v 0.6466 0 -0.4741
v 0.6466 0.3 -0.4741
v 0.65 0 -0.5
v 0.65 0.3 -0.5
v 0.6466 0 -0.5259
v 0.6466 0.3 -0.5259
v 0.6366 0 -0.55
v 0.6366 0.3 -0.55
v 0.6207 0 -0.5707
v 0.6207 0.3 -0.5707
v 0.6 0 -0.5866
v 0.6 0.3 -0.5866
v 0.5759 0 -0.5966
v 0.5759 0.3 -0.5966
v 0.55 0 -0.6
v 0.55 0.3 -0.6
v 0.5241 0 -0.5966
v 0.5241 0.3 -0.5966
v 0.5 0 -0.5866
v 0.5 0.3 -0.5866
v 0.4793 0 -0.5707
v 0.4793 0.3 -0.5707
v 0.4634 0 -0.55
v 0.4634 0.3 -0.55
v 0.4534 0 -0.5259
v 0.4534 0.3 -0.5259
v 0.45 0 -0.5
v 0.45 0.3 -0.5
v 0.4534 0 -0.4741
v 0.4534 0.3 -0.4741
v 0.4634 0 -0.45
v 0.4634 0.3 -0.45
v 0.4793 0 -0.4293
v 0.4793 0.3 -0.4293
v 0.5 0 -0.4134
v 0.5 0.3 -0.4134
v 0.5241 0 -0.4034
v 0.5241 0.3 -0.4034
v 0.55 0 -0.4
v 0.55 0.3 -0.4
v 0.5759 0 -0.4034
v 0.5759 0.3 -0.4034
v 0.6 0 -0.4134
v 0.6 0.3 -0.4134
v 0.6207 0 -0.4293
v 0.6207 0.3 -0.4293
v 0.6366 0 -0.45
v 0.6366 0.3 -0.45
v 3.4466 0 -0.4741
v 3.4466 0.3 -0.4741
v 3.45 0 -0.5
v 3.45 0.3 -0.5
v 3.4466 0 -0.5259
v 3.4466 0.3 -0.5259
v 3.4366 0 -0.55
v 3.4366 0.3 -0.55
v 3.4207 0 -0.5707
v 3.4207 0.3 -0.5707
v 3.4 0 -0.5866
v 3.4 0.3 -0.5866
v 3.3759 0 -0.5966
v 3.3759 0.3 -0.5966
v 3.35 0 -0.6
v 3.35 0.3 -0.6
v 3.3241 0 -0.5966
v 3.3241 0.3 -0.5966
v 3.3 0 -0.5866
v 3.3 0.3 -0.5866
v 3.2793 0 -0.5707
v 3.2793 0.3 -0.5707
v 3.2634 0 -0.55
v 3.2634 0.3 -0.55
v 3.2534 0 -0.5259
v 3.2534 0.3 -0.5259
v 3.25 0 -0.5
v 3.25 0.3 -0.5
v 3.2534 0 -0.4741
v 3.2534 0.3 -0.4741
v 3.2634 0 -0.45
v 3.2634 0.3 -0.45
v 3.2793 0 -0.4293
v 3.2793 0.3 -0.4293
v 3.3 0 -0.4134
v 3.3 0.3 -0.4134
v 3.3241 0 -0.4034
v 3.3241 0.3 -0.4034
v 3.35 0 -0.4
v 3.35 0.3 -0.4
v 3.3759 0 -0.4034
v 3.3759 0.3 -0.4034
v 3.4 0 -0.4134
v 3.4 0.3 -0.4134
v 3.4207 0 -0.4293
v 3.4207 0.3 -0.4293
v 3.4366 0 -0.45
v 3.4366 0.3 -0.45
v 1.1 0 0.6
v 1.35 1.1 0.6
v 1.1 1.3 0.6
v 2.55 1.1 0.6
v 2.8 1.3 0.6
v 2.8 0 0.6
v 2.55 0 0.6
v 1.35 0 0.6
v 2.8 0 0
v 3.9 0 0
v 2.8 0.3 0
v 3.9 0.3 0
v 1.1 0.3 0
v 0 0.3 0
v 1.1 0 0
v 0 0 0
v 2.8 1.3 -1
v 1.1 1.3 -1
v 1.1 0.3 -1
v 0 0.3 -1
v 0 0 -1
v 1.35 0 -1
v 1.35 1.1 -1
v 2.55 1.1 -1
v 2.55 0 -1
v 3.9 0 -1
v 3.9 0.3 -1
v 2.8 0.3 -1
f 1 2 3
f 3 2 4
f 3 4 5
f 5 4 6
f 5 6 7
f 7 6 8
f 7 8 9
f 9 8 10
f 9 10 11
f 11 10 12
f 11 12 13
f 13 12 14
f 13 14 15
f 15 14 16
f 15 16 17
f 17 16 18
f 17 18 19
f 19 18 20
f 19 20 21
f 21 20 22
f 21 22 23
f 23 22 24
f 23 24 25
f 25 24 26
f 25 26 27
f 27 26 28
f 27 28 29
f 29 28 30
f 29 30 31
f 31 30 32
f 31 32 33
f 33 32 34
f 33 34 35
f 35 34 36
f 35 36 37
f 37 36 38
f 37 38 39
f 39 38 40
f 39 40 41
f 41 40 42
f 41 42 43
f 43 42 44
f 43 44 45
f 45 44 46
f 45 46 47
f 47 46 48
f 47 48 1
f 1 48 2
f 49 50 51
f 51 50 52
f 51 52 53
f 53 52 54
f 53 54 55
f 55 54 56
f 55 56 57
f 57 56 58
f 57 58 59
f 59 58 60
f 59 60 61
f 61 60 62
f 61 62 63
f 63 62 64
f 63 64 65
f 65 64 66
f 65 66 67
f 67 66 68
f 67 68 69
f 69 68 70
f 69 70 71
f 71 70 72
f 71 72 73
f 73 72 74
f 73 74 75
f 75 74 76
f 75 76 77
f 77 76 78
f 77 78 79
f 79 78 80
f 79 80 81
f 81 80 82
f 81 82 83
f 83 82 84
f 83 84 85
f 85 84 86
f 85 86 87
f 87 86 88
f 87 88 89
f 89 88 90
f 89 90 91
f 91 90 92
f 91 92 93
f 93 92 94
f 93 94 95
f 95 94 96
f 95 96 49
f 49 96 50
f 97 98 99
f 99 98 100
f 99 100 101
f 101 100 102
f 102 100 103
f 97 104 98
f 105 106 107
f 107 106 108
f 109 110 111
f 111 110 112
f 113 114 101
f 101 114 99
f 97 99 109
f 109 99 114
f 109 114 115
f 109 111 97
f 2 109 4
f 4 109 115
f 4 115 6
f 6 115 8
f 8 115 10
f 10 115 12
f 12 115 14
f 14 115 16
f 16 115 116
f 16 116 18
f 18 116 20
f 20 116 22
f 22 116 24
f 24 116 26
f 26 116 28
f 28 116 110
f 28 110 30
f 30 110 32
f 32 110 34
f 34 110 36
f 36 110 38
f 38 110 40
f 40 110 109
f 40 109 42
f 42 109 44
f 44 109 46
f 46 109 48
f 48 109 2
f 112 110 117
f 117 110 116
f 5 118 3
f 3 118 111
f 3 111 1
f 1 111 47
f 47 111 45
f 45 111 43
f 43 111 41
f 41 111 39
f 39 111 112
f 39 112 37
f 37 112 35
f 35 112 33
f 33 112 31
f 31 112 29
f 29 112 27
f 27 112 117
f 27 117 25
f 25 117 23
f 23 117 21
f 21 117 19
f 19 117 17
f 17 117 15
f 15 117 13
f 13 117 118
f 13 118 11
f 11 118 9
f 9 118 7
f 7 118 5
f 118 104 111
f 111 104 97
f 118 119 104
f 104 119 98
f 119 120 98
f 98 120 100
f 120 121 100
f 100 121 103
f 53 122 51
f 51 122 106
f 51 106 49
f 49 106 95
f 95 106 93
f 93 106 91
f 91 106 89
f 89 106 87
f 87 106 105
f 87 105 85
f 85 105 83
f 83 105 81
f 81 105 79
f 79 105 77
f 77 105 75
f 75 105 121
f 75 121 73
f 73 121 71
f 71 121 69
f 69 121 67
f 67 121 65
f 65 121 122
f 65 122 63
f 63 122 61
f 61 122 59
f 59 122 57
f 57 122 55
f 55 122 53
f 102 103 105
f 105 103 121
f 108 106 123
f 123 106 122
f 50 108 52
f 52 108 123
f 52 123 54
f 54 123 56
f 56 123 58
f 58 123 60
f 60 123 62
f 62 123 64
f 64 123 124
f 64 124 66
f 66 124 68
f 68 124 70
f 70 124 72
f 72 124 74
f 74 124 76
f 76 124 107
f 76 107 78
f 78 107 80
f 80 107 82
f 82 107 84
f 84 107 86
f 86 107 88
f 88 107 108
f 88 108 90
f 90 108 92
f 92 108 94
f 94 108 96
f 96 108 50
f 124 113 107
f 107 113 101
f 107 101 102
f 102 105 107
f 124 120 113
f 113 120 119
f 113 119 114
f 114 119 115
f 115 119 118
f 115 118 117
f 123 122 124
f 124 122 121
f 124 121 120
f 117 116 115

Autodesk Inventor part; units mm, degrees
ref_plane "YZ Plane" through (0, 0, 0) normal (1, 0, 0) x (0, 1, 0)
ref_plane "XZ Plane" through (0, 0, 0) normal (0, 1, 0) x (-1, 0, 0)
ref_plane "XY Plane" through (0, 0, 0) normal (0, 0, 1) x (1, 0, 0)
sketch "Boceto1" plane through (0, 0, 0) normal (0, 0, 1) x (1, 0, 0)
  line L0 (2.8, 1.3) -> (2.8, 0.3)
  line L1 (2.6, 0) -> (3.9, 0)
  line L2 (3.9, 0) -> (3.9, 0.3)
  line L3 (3.9, 0.3) -> (2.8, 0.3)
  line L4 (0, 0) -> (0, 0.3)
  line L5 (0, 0.3) -> (1.1, 0.3)
  line L6 (0, 0) -> (1.3, 0)
  line L7 (1.1, 1.3) -> (1.1, 0.3)
  line L8 (1.1, 1.3) -> (2.8, 1.3)
  line L9 (1.35, 1.1) -> (2.55, 1.1)
  line L10 (1.3, 0) -> (1.35, 0)
  line L11 (2.6, 0) -> (2.55, 0)
  line L12 (2.55, 0) -> (2.55, 1.1)
  line L13 (1.35, 0) -> (1.35, 1.1)
  dimension "d0" = 1
  dimension "d10" = 0.05
  dimension "d11" = 0.05
extrude "Extrusión1" add sketch "Boceto1" against normal blind 1
sketch "Boceto2" plane through (0, 0, 0) normal (0, 0, 1) x (1, 0, 0)
  line L0 (1.1, 0.3) -> (1.1, 1.3)
  line L1 (1.1, 1.3) -> (2.8, 1.3) projected
  line L2 (1.1, 1.3) -> (2.8, 1.3)
  line L3 (2.8, 1.3) -> (2.8, 0.3) projected
  line L4 (2.8, 1.3) -> (2.8, 0.3)
  line L5 (2.55, 0) -> (2.55, 1.1) projected
  line L6 (1.35, 1.1) -> (2.55, 1.1)
  line L7 (2.55, 1.1) -> (2.55, 0)
  line L8 (2.55, 0) -> (2.8, 0)
  line L9 (1.35, 1.1) -> (1.35, 0)
  line L10 (1.35, 0) -> (1.1, 0)
  line L11 (1.1, 0.3) -> (1.1, 1.3) projected
  line L12 (1.1, 0.3) -> (1.1, 0)
  line L13 (2.8, 0.3) -> (2.8, 0)
extrude "Extrusión2" add sketch "Boceto2" along normal blind 0.6
sketch "Boceto3" plane through (2.8, 0.3, 0) normal (0, 1, 0) x (1, 0, 0)
  line L0 (-1.7, 0) -> (-1.7, 1.9)
  line L1 (-1.7, 1.9) -> (0, 1.9)
  line L2 (0, 1.9) -> (0, 0)
  line L3 (0, 0) -> (-1.7, 0)
  line L4 (-1.7, 0) -> (-2.8, 0)
  line L5 (-2.8, 0) -> (-2.8, 1)
  line L6 (-2.8, 1) -> (-1.7, 1)
  line L7 (0, 0) -> (1.1, 0)
  line L8 (1.1, 0) -> (1.1, 1)
  line L9 (1.1, 1) -> (0, 1)
  circle A0 centre (-2.25, 0.5) radius 0.1
  circle A1 centre (0.55, 0.5) radius 0.1
  line L10 (1.1, 0) -> (0, 0) projected
  line L11 (1.1, 0) -> (1.1, 1) projected
  line L12 (0, 1) -> (1.1, 1) projected
  line L13 (0, 0) -> (0, 1) projected
  point P0 (-2.8, 0)
  dimension "d0" = 1
  dimension "d7" = 0.2
  dimension "d8" = 0.2
extrude "Extrusión3" cut sketch "Boceto3" against normal blind 0.9 contours A0 | A1
properties part number "learnbotEncajeMotor"
